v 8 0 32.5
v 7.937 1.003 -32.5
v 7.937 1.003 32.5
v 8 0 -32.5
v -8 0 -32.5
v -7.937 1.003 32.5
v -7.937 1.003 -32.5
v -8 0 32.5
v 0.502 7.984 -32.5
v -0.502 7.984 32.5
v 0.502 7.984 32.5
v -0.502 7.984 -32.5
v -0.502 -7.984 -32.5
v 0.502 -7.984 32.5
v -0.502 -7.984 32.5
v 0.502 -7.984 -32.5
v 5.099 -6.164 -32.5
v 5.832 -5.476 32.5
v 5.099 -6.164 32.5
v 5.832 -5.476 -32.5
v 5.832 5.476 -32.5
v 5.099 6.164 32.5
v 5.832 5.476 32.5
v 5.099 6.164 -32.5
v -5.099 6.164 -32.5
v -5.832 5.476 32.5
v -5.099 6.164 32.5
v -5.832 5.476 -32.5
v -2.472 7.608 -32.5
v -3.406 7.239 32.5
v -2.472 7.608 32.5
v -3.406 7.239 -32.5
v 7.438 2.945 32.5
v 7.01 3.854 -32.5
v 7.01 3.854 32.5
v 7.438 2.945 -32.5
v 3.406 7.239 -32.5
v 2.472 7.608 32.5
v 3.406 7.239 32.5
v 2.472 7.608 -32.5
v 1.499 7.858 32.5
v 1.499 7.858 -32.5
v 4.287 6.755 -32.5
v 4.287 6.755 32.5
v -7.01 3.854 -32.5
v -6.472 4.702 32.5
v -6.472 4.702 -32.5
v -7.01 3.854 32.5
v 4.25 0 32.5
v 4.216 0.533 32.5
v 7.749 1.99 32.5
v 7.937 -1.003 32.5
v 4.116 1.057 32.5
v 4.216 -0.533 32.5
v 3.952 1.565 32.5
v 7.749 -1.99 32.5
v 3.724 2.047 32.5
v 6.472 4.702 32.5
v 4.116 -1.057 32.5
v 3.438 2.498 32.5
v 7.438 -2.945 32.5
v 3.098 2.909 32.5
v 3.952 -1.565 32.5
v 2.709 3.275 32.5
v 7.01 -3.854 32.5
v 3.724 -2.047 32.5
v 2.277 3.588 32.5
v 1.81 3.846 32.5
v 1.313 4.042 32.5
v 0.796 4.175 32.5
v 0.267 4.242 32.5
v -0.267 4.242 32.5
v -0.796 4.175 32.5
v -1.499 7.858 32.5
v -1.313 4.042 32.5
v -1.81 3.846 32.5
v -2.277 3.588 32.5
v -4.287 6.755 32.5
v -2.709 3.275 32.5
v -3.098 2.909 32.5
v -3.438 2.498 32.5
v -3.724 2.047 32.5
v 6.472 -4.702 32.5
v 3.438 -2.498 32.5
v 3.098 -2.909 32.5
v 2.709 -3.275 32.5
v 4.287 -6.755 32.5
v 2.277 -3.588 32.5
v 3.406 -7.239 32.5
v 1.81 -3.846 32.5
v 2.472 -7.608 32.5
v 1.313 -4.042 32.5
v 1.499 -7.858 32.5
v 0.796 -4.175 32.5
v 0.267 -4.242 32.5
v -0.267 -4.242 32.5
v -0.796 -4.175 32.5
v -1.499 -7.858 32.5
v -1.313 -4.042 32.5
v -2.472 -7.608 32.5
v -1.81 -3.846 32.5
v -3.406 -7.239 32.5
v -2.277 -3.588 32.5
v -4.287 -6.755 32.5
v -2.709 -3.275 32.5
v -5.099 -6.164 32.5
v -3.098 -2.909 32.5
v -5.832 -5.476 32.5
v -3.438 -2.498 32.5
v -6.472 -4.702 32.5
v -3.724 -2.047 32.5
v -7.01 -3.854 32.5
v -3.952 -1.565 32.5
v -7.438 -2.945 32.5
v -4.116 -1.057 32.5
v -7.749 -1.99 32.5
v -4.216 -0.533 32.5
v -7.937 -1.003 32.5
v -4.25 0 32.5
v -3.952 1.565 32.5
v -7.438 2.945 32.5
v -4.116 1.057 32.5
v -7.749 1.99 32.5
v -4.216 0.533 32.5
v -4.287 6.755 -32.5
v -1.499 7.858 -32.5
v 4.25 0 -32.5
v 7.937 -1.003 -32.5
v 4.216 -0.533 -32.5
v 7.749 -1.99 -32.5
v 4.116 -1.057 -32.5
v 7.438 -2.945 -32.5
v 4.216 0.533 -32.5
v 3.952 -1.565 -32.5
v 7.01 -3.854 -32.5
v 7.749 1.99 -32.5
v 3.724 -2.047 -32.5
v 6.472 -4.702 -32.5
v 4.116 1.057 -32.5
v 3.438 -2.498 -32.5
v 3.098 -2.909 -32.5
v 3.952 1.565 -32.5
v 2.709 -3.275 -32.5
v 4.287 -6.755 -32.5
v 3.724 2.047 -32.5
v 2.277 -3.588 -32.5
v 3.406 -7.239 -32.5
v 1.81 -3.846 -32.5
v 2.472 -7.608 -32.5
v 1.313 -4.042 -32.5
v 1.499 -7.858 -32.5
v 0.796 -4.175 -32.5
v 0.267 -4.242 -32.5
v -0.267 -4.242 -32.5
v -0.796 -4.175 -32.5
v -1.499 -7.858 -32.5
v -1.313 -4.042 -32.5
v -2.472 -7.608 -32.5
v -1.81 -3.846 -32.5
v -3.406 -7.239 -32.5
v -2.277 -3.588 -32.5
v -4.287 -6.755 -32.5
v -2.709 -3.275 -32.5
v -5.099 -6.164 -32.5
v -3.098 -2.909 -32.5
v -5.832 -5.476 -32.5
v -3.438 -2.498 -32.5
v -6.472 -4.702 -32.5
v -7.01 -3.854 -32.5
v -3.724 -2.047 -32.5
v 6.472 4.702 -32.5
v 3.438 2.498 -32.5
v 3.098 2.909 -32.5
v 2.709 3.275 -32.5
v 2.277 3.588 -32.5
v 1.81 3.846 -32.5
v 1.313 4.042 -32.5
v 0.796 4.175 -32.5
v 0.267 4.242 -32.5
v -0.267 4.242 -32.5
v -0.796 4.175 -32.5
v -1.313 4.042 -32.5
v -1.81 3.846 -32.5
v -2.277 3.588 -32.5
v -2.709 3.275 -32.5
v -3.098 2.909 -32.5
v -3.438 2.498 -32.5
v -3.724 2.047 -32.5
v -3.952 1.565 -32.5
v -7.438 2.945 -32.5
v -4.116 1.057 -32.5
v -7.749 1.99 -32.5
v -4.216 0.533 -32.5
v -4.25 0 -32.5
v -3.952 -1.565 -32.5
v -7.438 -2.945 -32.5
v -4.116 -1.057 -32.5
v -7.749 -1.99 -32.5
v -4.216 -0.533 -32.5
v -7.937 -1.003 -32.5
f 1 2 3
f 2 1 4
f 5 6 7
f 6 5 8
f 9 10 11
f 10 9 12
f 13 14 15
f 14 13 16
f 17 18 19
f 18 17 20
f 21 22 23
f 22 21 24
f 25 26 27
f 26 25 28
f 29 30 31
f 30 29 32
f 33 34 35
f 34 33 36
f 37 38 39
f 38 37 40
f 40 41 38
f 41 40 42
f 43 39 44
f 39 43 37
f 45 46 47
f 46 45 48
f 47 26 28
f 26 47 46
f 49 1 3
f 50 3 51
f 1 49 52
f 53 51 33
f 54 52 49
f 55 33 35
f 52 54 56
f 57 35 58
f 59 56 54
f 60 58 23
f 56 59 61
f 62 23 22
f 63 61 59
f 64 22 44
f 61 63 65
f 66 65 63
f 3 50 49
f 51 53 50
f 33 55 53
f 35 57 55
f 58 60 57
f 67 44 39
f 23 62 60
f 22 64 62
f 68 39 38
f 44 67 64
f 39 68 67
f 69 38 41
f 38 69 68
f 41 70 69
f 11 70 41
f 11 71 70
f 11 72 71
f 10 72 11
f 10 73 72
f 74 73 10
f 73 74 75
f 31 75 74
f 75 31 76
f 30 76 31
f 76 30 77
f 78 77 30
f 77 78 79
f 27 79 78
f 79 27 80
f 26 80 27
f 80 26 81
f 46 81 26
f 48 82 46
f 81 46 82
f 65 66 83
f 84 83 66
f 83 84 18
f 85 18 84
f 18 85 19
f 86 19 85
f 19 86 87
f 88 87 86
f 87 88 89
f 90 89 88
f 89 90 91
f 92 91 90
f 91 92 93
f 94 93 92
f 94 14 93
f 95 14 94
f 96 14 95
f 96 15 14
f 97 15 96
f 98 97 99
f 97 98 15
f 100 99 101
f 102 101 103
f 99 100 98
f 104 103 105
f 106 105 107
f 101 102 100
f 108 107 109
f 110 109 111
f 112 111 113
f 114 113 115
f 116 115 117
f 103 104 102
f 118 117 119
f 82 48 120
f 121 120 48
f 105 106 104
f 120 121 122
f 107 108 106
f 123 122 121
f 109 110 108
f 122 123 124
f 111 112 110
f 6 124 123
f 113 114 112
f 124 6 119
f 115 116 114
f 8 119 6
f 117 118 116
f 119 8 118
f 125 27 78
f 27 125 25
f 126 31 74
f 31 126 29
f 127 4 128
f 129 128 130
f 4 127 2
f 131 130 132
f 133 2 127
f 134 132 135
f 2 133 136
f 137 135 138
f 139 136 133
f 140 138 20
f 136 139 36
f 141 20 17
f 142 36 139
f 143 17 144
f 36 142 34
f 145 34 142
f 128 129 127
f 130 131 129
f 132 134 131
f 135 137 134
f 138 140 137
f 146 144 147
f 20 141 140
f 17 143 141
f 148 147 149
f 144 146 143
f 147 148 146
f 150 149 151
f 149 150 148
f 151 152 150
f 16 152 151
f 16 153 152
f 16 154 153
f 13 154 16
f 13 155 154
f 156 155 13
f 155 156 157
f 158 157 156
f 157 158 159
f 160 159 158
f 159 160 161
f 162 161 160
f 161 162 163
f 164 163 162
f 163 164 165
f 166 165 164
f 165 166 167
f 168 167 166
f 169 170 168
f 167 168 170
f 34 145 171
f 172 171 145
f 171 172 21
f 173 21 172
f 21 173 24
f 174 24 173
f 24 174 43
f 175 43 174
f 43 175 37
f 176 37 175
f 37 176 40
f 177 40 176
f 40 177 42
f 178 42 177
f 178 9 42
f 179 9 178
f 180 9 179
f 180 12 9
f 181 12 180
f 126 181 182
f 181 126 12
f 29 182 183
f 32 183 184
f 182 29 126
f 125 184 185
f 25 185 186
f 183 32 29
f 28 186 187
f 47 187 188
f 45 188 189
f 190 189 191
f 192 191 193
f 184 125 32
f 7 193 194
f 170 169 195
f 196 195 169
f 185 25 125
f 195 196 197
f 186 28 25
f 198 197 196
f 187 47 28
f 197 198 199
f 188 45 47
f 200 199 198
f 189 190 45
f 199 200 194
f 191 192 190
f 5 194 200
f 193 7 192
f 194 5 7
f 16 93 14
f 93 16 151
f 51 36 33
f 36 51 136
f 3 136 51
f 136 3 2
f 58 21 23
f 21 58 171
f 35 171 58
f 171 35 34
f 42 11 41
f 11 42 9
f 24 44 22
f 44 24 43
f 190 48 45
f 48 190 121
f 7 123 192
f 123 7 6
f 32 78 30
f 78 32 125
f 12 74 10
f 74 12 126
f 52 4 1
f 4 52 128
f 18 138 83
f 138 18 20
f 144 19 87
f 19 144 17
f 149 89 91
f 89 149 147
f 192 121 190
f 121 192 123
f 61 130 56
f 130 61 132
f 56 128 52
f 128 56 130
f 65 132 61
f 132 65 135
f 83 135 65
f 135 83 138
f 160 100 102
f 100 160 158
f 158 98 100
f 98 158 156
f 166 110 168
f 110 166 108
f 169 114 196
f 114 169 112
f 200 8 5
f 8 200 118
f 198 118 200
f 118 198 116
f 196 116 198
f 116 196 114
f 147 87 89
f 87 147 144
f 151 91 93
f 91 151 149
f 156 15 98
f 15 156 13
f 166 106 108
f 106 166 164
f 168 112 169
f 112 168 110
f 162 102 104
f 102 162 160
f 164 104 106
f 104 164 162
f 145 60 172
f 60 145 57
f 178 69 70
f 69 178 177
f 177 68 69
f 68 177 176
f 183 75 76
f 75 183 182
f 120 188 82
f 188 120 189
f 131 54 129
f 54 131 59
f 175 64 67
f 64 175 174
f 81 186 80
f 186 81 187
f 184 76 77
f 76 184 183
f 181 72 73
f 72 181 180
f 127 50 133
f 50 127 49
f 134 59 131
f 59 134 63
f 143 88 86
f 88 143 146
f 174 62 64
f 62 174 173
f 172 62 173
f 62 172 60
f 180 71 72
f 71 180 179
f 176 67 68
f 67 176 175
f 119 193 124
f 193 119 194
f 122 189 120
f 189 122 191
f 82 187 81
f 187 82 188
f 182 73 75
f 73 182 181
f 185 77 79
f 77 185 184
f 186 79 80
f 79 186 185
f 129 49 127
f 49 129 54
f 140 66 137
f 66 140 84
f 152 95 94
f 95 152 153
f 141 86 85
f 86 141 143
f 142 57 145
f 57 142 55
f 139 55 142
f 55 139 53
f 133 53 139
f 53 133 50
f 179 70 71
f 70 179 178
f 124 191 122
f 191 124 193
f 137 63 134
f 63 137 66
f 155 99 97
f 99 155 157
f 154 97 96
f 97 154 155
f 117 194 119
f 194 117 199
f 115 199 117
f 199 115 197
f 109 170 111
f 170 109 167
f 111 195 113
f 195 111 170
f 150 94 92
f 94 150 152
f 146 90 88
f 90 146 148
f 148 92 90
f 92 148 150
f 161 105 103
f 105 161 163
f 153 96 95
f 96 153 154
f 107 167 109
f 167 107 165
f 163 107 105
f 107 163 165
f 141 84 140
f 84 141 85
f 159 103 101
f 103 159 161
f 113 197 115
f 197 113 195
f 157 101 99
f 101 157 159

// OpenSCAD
$fn = 50;


difference() {
	union() {
		translate(v = [0, 0, -32.5000000000]) {
			cylinder(h = 65, r = 8.0000000000);
		}
	}
	union() {
		translate(v = [0, 0, -100.0000000000]) {
			cylinder(h = 200, r = 4.2500000000);
		}
	}
}
